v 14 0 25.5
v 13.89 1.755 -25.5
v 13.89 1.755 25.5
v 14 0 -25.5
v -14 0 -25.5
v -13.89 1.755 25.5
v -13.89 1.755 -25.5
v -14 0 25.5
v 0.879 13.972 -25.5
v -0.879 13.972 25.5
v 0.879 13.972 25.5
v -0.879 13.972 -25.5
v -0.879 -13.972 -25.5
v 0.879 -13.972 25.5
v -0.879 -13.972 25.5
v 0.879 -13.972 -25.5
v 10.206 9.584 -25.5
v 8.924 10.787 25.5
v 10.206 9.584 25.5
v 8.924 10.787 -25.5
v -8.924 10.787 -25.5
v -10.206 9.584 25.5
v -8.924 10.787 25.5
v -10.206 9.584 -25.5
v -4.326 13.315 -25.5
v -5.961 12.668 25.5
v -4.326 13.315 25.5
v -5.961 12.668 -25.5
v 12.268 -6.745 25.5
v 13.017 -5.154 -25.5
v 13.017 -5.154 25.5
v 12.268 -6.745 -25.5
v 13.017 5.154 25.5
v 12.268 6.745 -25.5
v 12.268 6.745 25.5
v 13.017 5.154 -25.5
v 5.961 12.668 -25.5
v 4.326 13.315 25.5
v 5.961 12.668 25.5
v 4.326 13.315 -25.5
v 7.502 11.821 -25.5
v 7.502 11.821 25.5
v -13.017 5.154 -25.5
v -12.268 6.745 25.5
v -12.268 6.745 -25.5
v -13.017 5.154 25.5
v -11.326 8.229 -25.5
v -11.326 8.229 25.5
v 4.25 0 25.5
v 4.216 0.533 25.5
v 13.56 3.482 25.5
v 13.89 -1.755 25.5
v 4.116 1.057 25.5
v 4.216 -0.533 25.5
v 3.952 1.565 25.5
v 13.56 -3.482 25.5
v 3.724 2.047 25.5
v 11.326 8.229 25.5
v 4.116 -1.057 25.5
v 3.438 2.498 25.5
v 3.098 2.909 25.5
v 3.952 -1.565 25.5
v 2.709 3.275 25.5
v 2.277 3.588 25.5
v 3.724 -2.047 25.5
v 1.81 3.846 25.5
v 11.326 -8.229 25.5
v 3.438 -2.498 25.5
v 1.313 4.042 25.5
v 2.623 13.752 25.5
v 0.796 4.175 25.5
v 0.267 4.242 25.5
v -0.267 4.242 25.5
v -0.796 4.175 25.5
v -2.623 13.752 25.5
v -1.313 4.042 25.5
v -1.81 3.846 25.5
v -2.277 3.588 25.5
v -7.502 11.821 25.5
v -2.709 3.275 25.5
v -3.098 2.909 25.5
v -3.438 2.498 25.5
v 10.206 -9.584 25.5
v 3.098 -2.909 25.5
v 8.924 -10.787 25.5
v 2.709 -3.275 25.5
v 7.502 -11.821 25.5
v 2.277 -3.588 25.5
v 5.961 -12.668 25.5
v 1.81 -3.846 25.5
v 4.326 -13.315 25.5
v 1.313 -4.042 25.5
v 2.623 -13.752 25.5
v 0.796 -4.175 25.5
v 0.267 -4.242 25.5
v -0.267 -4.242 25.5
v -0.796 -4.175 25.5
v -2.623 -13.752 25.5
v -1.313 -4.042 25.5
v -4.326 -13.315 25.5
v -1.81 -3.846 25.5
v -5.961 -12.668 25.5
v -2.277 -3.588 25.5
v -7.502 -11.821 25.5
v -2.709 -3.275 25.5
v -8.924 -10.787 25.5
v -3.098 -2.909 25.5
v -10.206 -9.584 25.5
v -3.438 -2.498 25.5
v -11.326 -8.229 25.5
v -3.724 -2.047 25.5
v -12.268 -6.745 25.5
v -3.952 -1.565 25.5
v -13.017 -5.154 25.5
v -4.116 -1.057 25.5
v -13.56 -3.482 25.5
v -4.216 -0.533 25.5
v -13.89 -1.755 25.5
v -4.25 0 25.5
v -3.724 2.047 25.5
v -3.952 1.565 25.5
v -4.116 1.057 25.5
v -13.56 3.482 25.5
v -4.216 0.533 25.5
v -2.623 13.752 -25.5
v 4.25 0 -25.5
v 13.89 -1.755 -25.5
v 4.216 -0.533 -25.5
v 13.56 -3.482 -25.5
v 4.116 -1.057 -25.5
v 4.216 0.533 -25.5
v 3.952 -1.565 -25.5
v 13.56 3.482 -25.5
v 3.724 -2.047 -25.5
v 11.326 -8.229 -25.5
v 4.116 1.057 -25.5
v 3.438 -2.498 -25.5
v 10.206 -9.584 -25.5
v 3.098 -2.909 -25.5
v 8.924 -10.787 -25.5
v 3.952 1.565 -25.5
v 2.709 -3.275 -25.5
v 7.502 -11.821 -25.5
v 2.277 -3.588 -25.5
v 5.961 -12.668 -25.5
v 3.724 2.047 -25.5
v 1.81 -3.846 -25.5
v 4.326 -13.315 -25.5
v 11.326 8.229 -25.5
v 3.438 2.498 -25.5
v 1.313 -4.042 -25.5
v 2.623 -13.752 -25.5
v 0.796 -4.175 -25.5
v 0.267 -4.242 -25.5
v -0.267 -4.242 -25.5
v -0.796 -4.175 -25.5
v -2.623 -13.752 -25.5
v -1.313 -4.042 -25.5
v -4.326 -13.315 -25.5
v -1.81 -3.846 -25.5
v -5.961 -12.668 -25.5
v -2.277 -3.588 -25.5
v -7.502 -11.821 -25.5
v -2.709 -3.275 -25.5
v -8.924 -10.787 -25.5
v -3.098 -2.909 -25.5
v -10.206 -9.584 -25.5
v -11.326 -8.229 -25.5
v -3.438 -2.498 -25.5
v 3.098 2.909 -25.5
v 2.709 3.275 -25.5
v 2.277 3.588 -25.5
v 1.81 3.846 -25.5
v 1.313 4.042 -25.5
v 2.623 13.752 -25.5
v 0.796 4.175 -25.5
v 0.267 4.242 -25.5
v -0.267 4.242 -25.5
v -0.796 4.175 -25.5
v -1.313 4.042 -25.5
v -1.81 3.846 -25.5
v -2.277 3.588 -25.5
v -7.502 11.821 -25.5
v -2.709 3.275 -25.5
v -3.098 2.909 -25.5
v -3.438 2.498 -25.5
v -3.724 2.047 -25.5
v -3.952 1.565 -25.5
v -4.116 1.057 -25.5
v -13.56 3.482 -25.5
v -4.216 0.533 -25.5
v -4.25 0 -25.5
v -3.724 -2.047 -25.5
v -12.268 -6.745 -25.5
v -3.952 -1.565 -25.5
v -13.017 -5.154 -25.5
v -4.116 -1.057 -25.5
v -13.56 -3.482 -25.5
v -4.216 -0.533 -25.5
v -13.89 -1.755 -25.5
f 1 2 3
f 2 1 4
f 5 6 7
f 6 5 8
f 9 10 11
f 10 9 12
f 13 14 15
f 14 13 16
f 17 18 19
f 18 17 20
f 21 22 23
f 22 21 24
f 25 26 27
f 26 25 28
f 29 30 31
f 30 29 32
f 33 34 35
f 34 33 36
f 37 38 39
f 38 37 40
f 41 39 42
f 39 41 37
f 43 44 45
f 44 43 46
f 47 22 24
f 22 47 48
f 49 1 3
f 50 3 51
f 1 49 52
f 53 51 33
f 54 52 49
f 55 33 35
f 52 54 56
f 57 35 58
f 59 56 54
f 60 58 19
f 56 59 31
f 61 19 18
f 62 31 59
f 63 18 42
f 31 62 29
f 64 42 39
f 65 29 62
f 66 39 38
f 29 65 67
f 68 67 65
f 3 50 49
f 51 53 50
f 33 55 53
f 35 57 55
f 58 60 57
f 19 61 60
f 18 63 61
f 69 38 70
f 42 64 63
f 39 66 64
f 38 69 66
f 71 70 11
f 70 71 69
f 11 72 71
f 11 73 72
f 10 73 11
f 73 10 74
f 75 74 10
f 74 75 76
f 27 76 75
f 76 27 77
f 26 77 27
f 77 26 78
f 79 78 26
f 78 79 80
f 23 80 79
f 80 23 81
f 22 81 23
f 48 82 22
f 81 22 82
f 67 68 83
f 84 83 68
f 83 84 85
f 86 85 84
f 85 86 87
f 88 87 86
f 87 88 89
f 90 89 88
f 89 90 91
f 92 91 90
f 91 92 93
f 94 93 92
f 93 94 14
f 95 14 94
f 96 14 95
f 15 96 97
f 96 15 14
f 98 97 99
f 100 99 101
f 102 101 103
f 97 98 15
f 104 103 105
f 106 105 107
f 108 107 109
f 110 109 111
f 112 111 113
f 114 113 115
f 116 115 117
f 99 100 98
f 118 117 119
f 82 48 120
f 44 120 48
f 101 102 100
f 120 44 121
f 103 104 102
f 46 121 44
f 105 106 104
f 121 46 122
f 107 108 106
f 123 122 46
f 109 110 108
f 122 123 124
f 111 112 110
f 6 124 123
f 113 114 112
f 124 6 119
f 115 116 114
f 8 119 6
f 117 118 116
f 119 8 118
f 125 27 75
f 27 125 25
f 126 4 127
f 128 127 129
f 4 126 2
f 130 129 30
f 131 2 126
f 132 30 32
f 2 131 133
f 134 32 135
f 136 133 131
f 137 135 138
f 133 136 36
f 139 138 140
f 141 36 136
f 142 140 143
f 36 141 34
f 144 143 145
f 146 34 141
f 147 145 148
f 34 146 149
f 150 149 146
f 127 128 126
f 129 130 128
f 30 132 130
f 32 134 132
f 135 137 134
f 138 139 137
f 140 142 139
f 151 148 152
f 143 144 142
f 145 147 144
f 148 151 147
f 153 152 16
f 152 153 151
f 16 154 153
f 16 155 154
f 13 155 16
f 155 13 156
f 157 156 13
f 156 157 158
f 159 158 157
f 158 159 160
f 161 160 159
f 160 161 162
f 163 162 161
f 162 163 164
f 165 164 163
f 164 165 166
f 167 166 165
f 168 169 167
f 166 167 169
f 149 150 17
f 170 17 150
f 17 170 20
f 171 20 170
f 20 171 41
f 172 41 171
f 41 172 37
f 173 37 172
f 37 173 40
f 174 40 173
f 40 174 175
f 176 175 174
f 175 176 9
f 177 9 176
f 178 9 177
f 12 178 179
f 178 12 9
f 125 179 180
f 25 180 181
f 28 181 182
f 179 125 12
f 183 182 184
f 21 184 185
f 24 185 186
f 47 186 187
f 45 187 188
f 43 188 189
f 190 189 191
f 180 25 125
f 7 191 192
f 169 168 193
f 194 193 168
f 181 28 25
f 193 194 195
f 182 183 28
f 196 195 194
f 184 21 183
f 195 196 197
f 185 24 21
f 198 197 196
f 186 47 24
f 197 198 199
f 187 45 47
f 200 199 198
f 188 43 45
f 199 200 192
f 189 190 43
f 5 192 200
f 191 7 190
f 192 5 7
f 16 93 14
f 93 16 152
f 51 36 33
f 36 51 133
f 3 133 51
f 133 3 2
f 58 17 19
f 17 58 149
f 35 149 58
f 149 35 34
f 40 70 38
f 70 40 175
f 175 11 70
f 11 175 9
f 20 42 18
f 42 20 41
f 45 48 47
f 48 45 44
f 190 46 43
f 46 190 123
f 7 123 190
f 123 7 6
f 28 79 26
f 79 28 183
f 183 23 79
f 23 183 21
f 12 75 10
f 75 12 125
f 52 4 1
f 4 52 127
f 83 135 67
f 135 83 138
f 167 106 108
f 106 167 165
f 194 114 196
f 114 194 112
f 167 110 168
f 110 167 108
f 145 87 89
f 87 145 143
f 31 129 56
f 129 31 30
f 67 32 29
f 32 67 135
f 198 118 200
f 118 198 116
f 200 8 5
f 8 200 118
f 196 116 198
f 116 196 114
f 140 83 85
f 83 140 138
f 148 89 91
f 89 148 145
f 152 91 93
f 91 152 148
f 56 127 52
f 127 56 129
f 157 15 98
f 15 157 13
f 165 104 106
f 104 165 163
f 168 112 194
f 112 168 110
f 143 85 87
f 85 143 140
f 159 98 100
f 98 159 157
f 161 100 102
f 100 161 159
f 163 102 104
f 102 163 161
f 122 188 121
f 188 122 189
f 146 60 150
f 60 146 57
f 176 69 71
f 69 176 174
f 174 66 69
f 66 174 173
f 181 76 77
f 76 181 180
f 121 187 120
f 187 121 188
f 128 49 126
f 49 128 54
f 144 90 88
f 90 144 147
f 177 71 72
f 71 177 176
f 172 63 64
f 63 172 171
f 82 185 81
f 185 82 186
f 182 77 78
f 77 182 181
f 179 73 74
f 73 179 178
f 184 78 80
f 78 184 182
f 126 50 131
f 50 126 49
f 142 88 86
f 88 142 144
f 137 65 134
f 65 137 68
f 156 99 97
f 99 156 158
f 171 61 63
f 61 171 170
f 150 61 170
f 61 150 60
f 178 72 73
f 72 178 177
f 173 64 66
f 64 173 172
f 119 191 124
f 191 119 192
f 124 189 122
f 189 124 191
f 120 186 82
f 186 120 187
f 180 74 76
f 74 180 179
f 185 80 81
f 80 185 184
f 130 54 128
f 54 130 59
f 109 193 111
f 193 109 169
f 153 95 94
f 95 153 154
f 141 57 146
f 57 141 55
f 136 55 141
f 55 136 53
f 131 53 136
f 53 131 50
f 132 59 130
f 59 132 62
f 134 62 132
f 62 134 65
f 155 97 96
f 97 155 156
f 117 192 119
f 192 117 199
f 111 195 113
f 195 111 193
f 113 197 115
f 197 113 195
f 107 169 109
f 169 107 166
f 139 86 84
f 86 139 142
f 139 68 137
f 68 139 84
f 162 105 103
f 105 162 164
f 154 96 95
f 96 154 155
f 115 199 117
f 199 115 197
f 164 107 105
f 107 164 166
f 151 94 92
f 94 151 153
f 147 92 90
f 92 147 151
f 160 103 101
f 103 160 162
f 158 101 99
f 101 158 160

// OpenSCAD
$fn = 50;


difference() {
	union() {
		translate(v = [0, 0, -25.5000000000]) {
			cylinder(h = 51, r = 14.0000000000);
		}
	}
	union() {
		translate(v = [0, 0, -100.0000000000]) {
			cylinder(h = 200, r = 4.2500000000);
		}
	}
}
